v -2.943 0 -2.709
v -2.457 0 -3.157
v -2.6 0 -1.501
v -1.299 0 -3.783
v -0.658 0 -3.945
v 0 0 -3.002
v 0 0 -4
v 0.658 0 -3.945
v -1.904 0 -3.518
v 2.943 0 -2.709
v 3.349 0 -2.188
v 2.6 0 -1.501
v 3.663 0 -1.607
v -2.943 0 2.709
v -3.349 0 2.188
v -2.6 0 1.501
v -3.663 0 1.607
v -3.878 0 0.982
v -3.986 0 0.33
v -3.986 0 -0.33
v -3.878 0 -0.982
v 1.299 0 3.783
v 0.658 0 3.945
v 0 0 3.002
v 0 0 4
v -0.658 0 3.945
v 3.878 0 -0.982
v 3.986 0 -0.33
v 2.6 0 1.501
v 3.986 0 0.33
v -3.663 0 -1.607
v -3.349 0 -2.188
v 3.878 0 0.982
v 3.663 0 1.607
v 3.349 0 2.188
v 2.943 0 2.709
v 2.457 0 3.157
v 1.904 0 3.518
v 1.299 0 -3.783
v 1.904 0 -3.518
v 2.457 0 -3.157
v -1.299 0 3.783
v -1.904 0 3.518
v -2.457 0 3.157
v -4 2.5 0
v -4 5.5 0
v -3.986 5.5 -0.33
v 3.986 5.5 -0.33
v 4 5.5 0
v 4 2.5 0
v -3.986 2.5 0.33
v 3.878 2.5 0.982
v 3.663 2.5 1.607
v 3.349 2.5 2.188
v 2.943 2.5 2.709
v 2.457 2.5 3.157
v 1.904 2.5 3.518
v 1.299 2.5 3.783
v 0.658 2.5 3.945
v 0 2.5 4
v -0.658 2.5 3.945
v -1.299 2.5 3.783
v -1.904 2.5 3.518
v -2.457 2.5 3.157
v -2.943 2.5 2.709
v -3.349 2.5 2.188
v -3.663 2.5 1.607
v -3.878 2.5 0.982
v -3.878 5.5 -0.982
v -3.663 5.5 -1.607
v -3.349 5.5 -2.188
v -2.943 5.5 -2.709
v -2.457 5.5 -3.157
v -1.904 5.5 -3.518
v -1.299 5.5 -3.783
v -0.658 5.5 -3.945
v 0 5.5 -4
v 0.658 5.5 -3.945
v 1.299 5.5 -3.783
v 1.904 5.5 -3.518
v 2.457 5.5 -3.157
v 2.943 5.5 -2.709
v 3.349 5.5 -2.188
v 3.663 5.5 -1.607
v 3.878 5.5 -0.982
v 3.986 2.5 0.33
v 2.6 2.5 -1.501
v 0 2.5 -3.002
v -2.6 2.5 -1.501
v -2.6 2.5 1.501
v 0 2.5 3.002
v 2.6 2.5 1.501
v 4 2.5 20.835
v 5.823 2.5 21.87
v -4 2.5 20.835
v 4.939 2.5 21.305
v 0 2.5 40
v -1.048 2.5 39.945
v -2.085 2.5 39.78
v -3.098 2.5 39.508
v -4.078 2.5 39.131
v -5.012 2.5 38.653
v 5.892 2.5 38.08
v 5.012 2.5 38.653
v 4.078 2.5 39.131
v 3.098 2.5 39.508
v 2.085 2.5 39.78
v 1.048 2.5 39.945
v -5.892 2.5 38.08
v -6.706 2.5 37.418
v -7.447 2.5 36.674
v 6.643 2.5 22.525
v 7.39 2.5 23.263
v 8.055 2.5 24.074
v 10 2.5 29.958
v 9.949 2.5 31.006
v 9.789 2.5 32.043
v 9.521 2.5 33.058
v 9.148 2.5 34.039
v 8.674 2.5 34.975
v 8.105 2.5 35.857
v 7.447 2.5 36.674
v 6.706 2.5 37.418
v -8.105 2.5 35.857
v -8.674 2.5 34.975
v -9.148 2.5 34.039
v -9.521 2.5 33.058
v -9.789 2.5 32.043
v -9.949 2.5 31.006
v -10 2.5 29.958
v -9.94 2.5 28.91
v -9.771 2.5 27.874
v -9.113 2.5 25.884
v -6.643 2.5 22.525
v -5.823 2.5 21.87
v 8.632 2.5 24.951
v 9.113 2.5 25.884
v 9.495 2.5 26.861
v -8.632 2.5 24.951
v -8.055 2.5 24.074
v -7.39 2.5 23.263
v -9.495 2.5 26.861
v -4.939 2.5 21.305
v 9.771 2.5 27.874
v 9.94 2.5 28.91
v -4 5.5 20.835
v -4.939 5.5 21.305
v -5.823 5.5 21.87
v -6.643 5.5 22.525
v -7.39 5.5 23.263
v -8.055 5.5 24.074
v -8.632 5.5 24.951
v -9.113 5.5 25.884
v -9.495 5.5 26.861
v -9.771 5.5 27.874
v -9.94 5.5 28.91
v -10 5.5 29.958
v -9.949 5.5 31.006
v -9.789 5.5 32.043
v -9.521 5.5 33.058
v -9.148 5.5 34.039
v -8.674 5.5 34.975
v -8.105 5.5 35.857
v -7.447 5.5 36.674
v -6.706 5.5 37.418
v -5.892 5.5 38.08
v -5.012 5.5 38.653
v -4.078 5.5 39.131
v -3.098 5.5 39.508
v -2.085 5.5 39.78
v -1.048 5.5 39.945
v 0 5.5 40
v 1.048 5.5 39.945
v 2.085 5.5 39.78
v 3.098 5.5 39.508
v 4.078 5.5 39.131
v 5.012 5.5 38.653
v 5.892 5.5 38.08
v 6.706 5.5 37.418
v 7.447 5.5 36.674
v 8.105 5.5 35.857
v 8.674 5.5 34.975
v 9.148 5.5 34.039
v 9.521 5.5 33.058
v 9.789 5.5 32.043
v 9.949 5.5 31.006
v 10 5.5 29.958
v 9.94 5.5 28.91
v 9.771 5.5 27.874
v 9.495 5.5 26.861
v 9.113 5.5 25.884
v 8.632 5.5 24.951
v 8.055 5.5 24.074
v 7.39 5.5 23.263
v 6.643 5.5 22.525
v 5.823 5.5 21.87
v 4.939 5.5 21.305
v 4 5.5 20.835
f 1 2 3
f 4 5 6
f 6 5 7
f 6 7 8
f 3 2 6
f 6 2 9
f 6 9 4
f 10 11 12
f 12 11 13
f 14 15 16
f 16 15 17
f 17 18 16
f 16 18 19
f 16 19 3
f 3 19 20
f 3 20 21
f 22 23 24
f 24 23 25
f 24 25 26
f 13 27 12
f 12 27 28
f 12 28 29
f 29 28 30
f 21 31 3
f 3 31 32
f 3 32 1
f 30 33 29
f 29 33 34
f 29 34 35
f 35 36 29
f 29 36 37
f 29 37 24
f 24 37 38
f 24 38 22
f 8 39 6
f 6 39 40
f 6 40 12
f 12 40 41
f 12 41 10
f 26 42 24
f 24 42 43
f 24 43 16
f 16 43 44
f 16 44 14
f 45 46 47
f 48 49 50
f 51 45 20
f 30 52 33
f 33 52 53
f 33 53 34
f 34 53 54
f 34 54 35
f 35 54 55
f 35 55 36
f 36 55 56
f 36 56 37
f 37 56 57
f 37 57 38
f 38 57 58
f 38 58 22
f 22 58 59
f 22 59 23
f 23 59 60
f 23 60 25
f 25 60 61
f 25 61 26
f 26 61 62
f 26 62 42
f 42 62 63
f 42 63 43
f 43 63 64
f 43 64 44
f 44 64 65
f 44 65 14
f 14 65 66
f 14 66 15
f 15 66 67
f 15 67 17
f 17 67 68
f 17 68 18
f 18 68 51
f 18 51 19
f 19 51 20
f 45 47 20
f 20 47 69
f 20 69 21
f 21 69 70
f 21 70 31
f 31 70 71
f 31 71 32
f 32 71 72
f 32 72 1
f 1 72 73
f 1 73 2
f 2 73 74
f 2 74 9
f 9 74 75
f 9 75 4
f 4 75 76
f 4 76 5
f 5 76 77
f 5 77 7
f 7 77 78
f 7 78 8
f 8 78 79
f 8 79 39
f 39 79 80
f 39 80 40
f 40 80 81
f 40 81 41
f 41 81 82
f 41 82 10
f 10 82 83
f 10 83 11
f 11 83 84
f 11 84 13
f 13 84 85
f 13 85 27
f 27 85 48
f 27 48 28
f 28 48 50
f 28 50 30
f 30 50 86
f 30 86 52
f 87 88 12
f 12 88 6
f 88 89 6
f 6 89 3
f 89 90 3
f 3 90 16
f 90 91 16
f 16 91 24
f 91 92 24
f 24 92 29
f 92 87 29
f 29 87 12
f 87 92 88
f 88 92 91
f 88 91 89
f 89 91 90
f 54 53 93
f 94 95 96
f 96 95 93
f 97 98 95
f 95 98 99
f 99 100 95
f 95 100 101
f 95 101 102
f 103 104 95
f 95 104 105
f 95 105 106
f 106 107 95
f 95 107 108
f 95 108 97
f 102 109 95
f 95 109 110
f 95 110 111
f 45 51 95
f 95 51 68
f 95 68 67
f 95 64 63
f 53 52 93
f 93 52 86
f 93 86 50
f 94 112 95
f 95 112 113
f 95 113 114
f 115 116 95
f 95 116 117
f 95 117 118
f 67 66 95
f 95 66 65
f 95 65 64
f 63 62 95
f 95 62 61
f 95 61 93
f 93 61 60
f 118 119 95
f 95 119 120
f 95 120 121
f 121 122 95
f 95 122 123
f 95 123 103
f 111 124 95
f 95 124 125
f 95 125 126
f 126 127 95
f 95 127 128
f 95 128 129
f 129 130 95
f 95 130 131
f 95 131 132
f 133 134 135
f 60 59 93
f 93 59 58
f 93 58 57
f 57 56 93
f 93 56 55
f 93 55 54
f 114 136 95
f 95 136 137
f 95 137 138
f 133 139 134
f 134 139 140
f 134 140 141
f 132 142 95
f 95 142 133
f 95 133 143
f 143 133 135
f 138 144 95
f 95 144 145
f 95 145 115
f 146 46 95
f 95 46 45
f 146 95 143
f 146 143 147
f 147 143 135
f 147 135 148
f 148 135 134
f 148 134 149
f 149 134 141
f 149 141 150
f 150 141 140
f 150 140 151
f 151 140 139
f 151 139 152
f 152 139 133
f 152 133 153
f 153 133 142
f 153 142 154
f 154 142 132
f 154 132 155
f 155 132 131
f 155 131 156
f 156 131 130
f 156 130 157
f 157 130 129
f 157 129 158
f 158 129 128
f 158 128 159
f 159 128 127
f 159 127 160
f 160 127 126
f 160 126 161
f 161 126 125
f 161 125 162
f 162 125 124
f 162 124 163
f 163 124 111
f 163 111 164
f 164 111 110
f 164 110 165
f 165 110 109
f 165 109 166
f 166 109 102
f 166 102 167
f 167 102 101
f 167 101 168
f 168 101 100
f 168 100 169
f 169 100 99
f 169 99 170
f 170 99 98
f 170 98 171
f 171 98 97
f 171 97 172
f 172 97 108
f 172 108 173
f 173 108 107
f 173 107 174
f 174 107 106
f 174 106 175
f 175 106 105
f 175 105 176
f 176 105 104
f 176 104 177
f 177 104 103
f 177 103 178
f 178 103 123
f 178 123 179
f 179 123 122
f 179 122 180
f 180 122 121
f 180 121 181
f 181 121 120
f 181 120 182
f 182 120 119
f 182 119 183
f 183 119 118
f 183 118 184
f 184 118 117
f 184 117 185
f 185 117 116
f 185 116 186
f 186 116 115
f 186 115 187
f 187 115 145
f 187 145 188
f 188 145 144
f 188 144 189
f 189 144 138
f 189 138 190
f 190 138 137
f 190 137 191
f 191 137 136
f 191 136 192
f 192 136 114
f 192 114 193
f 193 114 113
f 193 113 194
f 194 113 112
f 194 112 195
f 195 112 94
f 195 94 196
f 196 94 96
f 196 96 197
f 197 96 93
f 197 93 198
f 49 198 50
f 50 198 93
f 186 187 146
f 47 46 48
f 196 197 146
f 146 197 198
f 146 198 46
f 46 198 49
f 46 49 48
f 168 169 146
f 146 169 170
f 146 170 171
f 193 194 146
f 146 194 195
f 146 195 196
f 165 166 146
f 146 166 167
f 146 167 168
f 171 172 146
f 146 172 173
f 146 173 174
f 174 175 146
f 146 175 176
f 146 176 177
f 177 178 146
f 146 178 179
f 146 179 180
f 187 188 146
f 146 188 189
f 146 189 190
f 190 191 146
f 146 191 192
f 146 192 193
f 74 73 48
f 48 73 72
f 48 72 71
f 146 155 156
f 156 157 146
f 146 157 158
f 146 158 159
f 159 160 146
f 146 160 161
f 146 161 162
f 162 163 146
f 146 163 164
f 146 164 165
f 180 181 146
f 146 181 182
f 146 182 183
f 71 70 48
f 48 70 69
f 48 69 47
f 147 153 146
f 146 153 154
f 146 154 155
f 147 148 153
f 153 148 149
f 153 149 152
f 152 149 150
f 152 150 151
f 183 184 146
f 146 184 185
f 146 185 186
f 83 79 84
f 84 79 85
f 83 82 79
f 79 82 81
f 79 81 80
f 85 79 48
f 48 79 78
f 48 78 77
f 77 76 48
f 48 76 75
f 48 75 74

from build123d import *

# Parameters (mm, degrees)
SKETCH_1_R      = 4
EXTRUDE_1_DEPTH = 2.5
EXTRUDE_2_DEPTH = 3


with BuildPart() as part:
    # 草图1 → 凸台-拉伸1 (new body)
    with BuildSketch(Plane(origin=(0, 0, 0), x_dir=(1, 0, 0), z_dir=(0, 1, 0))):
        with Locations(Location((0, 0, 0), (0, 0, 270))):
            Circle(SKETCH_1_R)
        Polygon((0, 3.0022214), (-2.6, 1.5011107), (-2.6, -1.5011107), (0, -3.0022214), (2.6, -1.5011107), (2.6, 1.5011107), align=None, mode=Mode.SUBTRACT)
    extrude(amount=EXTRUDE_1_DEPTH)

    # 草图2 → 凸台-拉伸2 (add)
    with BuildSketch(Plane(origin=(0, 2.5, 0), x_dir=(1, 0, 0), z_dir=(0, 1, 0))):
        with BuildLine():
            Line((4, 0), (4, -20.83484861))
            ThreePointArc((4, -20.83484861), (0, -40), (-4, -20.83484861))
            Line((-4, -20.83484861), (-4, 0))
            ThreePointArc((-4, 0), (0, 4), (4, 0))
        make_face()
    extrude(amount=EXTRUDE_2_DEPTH)


solid = part.part
